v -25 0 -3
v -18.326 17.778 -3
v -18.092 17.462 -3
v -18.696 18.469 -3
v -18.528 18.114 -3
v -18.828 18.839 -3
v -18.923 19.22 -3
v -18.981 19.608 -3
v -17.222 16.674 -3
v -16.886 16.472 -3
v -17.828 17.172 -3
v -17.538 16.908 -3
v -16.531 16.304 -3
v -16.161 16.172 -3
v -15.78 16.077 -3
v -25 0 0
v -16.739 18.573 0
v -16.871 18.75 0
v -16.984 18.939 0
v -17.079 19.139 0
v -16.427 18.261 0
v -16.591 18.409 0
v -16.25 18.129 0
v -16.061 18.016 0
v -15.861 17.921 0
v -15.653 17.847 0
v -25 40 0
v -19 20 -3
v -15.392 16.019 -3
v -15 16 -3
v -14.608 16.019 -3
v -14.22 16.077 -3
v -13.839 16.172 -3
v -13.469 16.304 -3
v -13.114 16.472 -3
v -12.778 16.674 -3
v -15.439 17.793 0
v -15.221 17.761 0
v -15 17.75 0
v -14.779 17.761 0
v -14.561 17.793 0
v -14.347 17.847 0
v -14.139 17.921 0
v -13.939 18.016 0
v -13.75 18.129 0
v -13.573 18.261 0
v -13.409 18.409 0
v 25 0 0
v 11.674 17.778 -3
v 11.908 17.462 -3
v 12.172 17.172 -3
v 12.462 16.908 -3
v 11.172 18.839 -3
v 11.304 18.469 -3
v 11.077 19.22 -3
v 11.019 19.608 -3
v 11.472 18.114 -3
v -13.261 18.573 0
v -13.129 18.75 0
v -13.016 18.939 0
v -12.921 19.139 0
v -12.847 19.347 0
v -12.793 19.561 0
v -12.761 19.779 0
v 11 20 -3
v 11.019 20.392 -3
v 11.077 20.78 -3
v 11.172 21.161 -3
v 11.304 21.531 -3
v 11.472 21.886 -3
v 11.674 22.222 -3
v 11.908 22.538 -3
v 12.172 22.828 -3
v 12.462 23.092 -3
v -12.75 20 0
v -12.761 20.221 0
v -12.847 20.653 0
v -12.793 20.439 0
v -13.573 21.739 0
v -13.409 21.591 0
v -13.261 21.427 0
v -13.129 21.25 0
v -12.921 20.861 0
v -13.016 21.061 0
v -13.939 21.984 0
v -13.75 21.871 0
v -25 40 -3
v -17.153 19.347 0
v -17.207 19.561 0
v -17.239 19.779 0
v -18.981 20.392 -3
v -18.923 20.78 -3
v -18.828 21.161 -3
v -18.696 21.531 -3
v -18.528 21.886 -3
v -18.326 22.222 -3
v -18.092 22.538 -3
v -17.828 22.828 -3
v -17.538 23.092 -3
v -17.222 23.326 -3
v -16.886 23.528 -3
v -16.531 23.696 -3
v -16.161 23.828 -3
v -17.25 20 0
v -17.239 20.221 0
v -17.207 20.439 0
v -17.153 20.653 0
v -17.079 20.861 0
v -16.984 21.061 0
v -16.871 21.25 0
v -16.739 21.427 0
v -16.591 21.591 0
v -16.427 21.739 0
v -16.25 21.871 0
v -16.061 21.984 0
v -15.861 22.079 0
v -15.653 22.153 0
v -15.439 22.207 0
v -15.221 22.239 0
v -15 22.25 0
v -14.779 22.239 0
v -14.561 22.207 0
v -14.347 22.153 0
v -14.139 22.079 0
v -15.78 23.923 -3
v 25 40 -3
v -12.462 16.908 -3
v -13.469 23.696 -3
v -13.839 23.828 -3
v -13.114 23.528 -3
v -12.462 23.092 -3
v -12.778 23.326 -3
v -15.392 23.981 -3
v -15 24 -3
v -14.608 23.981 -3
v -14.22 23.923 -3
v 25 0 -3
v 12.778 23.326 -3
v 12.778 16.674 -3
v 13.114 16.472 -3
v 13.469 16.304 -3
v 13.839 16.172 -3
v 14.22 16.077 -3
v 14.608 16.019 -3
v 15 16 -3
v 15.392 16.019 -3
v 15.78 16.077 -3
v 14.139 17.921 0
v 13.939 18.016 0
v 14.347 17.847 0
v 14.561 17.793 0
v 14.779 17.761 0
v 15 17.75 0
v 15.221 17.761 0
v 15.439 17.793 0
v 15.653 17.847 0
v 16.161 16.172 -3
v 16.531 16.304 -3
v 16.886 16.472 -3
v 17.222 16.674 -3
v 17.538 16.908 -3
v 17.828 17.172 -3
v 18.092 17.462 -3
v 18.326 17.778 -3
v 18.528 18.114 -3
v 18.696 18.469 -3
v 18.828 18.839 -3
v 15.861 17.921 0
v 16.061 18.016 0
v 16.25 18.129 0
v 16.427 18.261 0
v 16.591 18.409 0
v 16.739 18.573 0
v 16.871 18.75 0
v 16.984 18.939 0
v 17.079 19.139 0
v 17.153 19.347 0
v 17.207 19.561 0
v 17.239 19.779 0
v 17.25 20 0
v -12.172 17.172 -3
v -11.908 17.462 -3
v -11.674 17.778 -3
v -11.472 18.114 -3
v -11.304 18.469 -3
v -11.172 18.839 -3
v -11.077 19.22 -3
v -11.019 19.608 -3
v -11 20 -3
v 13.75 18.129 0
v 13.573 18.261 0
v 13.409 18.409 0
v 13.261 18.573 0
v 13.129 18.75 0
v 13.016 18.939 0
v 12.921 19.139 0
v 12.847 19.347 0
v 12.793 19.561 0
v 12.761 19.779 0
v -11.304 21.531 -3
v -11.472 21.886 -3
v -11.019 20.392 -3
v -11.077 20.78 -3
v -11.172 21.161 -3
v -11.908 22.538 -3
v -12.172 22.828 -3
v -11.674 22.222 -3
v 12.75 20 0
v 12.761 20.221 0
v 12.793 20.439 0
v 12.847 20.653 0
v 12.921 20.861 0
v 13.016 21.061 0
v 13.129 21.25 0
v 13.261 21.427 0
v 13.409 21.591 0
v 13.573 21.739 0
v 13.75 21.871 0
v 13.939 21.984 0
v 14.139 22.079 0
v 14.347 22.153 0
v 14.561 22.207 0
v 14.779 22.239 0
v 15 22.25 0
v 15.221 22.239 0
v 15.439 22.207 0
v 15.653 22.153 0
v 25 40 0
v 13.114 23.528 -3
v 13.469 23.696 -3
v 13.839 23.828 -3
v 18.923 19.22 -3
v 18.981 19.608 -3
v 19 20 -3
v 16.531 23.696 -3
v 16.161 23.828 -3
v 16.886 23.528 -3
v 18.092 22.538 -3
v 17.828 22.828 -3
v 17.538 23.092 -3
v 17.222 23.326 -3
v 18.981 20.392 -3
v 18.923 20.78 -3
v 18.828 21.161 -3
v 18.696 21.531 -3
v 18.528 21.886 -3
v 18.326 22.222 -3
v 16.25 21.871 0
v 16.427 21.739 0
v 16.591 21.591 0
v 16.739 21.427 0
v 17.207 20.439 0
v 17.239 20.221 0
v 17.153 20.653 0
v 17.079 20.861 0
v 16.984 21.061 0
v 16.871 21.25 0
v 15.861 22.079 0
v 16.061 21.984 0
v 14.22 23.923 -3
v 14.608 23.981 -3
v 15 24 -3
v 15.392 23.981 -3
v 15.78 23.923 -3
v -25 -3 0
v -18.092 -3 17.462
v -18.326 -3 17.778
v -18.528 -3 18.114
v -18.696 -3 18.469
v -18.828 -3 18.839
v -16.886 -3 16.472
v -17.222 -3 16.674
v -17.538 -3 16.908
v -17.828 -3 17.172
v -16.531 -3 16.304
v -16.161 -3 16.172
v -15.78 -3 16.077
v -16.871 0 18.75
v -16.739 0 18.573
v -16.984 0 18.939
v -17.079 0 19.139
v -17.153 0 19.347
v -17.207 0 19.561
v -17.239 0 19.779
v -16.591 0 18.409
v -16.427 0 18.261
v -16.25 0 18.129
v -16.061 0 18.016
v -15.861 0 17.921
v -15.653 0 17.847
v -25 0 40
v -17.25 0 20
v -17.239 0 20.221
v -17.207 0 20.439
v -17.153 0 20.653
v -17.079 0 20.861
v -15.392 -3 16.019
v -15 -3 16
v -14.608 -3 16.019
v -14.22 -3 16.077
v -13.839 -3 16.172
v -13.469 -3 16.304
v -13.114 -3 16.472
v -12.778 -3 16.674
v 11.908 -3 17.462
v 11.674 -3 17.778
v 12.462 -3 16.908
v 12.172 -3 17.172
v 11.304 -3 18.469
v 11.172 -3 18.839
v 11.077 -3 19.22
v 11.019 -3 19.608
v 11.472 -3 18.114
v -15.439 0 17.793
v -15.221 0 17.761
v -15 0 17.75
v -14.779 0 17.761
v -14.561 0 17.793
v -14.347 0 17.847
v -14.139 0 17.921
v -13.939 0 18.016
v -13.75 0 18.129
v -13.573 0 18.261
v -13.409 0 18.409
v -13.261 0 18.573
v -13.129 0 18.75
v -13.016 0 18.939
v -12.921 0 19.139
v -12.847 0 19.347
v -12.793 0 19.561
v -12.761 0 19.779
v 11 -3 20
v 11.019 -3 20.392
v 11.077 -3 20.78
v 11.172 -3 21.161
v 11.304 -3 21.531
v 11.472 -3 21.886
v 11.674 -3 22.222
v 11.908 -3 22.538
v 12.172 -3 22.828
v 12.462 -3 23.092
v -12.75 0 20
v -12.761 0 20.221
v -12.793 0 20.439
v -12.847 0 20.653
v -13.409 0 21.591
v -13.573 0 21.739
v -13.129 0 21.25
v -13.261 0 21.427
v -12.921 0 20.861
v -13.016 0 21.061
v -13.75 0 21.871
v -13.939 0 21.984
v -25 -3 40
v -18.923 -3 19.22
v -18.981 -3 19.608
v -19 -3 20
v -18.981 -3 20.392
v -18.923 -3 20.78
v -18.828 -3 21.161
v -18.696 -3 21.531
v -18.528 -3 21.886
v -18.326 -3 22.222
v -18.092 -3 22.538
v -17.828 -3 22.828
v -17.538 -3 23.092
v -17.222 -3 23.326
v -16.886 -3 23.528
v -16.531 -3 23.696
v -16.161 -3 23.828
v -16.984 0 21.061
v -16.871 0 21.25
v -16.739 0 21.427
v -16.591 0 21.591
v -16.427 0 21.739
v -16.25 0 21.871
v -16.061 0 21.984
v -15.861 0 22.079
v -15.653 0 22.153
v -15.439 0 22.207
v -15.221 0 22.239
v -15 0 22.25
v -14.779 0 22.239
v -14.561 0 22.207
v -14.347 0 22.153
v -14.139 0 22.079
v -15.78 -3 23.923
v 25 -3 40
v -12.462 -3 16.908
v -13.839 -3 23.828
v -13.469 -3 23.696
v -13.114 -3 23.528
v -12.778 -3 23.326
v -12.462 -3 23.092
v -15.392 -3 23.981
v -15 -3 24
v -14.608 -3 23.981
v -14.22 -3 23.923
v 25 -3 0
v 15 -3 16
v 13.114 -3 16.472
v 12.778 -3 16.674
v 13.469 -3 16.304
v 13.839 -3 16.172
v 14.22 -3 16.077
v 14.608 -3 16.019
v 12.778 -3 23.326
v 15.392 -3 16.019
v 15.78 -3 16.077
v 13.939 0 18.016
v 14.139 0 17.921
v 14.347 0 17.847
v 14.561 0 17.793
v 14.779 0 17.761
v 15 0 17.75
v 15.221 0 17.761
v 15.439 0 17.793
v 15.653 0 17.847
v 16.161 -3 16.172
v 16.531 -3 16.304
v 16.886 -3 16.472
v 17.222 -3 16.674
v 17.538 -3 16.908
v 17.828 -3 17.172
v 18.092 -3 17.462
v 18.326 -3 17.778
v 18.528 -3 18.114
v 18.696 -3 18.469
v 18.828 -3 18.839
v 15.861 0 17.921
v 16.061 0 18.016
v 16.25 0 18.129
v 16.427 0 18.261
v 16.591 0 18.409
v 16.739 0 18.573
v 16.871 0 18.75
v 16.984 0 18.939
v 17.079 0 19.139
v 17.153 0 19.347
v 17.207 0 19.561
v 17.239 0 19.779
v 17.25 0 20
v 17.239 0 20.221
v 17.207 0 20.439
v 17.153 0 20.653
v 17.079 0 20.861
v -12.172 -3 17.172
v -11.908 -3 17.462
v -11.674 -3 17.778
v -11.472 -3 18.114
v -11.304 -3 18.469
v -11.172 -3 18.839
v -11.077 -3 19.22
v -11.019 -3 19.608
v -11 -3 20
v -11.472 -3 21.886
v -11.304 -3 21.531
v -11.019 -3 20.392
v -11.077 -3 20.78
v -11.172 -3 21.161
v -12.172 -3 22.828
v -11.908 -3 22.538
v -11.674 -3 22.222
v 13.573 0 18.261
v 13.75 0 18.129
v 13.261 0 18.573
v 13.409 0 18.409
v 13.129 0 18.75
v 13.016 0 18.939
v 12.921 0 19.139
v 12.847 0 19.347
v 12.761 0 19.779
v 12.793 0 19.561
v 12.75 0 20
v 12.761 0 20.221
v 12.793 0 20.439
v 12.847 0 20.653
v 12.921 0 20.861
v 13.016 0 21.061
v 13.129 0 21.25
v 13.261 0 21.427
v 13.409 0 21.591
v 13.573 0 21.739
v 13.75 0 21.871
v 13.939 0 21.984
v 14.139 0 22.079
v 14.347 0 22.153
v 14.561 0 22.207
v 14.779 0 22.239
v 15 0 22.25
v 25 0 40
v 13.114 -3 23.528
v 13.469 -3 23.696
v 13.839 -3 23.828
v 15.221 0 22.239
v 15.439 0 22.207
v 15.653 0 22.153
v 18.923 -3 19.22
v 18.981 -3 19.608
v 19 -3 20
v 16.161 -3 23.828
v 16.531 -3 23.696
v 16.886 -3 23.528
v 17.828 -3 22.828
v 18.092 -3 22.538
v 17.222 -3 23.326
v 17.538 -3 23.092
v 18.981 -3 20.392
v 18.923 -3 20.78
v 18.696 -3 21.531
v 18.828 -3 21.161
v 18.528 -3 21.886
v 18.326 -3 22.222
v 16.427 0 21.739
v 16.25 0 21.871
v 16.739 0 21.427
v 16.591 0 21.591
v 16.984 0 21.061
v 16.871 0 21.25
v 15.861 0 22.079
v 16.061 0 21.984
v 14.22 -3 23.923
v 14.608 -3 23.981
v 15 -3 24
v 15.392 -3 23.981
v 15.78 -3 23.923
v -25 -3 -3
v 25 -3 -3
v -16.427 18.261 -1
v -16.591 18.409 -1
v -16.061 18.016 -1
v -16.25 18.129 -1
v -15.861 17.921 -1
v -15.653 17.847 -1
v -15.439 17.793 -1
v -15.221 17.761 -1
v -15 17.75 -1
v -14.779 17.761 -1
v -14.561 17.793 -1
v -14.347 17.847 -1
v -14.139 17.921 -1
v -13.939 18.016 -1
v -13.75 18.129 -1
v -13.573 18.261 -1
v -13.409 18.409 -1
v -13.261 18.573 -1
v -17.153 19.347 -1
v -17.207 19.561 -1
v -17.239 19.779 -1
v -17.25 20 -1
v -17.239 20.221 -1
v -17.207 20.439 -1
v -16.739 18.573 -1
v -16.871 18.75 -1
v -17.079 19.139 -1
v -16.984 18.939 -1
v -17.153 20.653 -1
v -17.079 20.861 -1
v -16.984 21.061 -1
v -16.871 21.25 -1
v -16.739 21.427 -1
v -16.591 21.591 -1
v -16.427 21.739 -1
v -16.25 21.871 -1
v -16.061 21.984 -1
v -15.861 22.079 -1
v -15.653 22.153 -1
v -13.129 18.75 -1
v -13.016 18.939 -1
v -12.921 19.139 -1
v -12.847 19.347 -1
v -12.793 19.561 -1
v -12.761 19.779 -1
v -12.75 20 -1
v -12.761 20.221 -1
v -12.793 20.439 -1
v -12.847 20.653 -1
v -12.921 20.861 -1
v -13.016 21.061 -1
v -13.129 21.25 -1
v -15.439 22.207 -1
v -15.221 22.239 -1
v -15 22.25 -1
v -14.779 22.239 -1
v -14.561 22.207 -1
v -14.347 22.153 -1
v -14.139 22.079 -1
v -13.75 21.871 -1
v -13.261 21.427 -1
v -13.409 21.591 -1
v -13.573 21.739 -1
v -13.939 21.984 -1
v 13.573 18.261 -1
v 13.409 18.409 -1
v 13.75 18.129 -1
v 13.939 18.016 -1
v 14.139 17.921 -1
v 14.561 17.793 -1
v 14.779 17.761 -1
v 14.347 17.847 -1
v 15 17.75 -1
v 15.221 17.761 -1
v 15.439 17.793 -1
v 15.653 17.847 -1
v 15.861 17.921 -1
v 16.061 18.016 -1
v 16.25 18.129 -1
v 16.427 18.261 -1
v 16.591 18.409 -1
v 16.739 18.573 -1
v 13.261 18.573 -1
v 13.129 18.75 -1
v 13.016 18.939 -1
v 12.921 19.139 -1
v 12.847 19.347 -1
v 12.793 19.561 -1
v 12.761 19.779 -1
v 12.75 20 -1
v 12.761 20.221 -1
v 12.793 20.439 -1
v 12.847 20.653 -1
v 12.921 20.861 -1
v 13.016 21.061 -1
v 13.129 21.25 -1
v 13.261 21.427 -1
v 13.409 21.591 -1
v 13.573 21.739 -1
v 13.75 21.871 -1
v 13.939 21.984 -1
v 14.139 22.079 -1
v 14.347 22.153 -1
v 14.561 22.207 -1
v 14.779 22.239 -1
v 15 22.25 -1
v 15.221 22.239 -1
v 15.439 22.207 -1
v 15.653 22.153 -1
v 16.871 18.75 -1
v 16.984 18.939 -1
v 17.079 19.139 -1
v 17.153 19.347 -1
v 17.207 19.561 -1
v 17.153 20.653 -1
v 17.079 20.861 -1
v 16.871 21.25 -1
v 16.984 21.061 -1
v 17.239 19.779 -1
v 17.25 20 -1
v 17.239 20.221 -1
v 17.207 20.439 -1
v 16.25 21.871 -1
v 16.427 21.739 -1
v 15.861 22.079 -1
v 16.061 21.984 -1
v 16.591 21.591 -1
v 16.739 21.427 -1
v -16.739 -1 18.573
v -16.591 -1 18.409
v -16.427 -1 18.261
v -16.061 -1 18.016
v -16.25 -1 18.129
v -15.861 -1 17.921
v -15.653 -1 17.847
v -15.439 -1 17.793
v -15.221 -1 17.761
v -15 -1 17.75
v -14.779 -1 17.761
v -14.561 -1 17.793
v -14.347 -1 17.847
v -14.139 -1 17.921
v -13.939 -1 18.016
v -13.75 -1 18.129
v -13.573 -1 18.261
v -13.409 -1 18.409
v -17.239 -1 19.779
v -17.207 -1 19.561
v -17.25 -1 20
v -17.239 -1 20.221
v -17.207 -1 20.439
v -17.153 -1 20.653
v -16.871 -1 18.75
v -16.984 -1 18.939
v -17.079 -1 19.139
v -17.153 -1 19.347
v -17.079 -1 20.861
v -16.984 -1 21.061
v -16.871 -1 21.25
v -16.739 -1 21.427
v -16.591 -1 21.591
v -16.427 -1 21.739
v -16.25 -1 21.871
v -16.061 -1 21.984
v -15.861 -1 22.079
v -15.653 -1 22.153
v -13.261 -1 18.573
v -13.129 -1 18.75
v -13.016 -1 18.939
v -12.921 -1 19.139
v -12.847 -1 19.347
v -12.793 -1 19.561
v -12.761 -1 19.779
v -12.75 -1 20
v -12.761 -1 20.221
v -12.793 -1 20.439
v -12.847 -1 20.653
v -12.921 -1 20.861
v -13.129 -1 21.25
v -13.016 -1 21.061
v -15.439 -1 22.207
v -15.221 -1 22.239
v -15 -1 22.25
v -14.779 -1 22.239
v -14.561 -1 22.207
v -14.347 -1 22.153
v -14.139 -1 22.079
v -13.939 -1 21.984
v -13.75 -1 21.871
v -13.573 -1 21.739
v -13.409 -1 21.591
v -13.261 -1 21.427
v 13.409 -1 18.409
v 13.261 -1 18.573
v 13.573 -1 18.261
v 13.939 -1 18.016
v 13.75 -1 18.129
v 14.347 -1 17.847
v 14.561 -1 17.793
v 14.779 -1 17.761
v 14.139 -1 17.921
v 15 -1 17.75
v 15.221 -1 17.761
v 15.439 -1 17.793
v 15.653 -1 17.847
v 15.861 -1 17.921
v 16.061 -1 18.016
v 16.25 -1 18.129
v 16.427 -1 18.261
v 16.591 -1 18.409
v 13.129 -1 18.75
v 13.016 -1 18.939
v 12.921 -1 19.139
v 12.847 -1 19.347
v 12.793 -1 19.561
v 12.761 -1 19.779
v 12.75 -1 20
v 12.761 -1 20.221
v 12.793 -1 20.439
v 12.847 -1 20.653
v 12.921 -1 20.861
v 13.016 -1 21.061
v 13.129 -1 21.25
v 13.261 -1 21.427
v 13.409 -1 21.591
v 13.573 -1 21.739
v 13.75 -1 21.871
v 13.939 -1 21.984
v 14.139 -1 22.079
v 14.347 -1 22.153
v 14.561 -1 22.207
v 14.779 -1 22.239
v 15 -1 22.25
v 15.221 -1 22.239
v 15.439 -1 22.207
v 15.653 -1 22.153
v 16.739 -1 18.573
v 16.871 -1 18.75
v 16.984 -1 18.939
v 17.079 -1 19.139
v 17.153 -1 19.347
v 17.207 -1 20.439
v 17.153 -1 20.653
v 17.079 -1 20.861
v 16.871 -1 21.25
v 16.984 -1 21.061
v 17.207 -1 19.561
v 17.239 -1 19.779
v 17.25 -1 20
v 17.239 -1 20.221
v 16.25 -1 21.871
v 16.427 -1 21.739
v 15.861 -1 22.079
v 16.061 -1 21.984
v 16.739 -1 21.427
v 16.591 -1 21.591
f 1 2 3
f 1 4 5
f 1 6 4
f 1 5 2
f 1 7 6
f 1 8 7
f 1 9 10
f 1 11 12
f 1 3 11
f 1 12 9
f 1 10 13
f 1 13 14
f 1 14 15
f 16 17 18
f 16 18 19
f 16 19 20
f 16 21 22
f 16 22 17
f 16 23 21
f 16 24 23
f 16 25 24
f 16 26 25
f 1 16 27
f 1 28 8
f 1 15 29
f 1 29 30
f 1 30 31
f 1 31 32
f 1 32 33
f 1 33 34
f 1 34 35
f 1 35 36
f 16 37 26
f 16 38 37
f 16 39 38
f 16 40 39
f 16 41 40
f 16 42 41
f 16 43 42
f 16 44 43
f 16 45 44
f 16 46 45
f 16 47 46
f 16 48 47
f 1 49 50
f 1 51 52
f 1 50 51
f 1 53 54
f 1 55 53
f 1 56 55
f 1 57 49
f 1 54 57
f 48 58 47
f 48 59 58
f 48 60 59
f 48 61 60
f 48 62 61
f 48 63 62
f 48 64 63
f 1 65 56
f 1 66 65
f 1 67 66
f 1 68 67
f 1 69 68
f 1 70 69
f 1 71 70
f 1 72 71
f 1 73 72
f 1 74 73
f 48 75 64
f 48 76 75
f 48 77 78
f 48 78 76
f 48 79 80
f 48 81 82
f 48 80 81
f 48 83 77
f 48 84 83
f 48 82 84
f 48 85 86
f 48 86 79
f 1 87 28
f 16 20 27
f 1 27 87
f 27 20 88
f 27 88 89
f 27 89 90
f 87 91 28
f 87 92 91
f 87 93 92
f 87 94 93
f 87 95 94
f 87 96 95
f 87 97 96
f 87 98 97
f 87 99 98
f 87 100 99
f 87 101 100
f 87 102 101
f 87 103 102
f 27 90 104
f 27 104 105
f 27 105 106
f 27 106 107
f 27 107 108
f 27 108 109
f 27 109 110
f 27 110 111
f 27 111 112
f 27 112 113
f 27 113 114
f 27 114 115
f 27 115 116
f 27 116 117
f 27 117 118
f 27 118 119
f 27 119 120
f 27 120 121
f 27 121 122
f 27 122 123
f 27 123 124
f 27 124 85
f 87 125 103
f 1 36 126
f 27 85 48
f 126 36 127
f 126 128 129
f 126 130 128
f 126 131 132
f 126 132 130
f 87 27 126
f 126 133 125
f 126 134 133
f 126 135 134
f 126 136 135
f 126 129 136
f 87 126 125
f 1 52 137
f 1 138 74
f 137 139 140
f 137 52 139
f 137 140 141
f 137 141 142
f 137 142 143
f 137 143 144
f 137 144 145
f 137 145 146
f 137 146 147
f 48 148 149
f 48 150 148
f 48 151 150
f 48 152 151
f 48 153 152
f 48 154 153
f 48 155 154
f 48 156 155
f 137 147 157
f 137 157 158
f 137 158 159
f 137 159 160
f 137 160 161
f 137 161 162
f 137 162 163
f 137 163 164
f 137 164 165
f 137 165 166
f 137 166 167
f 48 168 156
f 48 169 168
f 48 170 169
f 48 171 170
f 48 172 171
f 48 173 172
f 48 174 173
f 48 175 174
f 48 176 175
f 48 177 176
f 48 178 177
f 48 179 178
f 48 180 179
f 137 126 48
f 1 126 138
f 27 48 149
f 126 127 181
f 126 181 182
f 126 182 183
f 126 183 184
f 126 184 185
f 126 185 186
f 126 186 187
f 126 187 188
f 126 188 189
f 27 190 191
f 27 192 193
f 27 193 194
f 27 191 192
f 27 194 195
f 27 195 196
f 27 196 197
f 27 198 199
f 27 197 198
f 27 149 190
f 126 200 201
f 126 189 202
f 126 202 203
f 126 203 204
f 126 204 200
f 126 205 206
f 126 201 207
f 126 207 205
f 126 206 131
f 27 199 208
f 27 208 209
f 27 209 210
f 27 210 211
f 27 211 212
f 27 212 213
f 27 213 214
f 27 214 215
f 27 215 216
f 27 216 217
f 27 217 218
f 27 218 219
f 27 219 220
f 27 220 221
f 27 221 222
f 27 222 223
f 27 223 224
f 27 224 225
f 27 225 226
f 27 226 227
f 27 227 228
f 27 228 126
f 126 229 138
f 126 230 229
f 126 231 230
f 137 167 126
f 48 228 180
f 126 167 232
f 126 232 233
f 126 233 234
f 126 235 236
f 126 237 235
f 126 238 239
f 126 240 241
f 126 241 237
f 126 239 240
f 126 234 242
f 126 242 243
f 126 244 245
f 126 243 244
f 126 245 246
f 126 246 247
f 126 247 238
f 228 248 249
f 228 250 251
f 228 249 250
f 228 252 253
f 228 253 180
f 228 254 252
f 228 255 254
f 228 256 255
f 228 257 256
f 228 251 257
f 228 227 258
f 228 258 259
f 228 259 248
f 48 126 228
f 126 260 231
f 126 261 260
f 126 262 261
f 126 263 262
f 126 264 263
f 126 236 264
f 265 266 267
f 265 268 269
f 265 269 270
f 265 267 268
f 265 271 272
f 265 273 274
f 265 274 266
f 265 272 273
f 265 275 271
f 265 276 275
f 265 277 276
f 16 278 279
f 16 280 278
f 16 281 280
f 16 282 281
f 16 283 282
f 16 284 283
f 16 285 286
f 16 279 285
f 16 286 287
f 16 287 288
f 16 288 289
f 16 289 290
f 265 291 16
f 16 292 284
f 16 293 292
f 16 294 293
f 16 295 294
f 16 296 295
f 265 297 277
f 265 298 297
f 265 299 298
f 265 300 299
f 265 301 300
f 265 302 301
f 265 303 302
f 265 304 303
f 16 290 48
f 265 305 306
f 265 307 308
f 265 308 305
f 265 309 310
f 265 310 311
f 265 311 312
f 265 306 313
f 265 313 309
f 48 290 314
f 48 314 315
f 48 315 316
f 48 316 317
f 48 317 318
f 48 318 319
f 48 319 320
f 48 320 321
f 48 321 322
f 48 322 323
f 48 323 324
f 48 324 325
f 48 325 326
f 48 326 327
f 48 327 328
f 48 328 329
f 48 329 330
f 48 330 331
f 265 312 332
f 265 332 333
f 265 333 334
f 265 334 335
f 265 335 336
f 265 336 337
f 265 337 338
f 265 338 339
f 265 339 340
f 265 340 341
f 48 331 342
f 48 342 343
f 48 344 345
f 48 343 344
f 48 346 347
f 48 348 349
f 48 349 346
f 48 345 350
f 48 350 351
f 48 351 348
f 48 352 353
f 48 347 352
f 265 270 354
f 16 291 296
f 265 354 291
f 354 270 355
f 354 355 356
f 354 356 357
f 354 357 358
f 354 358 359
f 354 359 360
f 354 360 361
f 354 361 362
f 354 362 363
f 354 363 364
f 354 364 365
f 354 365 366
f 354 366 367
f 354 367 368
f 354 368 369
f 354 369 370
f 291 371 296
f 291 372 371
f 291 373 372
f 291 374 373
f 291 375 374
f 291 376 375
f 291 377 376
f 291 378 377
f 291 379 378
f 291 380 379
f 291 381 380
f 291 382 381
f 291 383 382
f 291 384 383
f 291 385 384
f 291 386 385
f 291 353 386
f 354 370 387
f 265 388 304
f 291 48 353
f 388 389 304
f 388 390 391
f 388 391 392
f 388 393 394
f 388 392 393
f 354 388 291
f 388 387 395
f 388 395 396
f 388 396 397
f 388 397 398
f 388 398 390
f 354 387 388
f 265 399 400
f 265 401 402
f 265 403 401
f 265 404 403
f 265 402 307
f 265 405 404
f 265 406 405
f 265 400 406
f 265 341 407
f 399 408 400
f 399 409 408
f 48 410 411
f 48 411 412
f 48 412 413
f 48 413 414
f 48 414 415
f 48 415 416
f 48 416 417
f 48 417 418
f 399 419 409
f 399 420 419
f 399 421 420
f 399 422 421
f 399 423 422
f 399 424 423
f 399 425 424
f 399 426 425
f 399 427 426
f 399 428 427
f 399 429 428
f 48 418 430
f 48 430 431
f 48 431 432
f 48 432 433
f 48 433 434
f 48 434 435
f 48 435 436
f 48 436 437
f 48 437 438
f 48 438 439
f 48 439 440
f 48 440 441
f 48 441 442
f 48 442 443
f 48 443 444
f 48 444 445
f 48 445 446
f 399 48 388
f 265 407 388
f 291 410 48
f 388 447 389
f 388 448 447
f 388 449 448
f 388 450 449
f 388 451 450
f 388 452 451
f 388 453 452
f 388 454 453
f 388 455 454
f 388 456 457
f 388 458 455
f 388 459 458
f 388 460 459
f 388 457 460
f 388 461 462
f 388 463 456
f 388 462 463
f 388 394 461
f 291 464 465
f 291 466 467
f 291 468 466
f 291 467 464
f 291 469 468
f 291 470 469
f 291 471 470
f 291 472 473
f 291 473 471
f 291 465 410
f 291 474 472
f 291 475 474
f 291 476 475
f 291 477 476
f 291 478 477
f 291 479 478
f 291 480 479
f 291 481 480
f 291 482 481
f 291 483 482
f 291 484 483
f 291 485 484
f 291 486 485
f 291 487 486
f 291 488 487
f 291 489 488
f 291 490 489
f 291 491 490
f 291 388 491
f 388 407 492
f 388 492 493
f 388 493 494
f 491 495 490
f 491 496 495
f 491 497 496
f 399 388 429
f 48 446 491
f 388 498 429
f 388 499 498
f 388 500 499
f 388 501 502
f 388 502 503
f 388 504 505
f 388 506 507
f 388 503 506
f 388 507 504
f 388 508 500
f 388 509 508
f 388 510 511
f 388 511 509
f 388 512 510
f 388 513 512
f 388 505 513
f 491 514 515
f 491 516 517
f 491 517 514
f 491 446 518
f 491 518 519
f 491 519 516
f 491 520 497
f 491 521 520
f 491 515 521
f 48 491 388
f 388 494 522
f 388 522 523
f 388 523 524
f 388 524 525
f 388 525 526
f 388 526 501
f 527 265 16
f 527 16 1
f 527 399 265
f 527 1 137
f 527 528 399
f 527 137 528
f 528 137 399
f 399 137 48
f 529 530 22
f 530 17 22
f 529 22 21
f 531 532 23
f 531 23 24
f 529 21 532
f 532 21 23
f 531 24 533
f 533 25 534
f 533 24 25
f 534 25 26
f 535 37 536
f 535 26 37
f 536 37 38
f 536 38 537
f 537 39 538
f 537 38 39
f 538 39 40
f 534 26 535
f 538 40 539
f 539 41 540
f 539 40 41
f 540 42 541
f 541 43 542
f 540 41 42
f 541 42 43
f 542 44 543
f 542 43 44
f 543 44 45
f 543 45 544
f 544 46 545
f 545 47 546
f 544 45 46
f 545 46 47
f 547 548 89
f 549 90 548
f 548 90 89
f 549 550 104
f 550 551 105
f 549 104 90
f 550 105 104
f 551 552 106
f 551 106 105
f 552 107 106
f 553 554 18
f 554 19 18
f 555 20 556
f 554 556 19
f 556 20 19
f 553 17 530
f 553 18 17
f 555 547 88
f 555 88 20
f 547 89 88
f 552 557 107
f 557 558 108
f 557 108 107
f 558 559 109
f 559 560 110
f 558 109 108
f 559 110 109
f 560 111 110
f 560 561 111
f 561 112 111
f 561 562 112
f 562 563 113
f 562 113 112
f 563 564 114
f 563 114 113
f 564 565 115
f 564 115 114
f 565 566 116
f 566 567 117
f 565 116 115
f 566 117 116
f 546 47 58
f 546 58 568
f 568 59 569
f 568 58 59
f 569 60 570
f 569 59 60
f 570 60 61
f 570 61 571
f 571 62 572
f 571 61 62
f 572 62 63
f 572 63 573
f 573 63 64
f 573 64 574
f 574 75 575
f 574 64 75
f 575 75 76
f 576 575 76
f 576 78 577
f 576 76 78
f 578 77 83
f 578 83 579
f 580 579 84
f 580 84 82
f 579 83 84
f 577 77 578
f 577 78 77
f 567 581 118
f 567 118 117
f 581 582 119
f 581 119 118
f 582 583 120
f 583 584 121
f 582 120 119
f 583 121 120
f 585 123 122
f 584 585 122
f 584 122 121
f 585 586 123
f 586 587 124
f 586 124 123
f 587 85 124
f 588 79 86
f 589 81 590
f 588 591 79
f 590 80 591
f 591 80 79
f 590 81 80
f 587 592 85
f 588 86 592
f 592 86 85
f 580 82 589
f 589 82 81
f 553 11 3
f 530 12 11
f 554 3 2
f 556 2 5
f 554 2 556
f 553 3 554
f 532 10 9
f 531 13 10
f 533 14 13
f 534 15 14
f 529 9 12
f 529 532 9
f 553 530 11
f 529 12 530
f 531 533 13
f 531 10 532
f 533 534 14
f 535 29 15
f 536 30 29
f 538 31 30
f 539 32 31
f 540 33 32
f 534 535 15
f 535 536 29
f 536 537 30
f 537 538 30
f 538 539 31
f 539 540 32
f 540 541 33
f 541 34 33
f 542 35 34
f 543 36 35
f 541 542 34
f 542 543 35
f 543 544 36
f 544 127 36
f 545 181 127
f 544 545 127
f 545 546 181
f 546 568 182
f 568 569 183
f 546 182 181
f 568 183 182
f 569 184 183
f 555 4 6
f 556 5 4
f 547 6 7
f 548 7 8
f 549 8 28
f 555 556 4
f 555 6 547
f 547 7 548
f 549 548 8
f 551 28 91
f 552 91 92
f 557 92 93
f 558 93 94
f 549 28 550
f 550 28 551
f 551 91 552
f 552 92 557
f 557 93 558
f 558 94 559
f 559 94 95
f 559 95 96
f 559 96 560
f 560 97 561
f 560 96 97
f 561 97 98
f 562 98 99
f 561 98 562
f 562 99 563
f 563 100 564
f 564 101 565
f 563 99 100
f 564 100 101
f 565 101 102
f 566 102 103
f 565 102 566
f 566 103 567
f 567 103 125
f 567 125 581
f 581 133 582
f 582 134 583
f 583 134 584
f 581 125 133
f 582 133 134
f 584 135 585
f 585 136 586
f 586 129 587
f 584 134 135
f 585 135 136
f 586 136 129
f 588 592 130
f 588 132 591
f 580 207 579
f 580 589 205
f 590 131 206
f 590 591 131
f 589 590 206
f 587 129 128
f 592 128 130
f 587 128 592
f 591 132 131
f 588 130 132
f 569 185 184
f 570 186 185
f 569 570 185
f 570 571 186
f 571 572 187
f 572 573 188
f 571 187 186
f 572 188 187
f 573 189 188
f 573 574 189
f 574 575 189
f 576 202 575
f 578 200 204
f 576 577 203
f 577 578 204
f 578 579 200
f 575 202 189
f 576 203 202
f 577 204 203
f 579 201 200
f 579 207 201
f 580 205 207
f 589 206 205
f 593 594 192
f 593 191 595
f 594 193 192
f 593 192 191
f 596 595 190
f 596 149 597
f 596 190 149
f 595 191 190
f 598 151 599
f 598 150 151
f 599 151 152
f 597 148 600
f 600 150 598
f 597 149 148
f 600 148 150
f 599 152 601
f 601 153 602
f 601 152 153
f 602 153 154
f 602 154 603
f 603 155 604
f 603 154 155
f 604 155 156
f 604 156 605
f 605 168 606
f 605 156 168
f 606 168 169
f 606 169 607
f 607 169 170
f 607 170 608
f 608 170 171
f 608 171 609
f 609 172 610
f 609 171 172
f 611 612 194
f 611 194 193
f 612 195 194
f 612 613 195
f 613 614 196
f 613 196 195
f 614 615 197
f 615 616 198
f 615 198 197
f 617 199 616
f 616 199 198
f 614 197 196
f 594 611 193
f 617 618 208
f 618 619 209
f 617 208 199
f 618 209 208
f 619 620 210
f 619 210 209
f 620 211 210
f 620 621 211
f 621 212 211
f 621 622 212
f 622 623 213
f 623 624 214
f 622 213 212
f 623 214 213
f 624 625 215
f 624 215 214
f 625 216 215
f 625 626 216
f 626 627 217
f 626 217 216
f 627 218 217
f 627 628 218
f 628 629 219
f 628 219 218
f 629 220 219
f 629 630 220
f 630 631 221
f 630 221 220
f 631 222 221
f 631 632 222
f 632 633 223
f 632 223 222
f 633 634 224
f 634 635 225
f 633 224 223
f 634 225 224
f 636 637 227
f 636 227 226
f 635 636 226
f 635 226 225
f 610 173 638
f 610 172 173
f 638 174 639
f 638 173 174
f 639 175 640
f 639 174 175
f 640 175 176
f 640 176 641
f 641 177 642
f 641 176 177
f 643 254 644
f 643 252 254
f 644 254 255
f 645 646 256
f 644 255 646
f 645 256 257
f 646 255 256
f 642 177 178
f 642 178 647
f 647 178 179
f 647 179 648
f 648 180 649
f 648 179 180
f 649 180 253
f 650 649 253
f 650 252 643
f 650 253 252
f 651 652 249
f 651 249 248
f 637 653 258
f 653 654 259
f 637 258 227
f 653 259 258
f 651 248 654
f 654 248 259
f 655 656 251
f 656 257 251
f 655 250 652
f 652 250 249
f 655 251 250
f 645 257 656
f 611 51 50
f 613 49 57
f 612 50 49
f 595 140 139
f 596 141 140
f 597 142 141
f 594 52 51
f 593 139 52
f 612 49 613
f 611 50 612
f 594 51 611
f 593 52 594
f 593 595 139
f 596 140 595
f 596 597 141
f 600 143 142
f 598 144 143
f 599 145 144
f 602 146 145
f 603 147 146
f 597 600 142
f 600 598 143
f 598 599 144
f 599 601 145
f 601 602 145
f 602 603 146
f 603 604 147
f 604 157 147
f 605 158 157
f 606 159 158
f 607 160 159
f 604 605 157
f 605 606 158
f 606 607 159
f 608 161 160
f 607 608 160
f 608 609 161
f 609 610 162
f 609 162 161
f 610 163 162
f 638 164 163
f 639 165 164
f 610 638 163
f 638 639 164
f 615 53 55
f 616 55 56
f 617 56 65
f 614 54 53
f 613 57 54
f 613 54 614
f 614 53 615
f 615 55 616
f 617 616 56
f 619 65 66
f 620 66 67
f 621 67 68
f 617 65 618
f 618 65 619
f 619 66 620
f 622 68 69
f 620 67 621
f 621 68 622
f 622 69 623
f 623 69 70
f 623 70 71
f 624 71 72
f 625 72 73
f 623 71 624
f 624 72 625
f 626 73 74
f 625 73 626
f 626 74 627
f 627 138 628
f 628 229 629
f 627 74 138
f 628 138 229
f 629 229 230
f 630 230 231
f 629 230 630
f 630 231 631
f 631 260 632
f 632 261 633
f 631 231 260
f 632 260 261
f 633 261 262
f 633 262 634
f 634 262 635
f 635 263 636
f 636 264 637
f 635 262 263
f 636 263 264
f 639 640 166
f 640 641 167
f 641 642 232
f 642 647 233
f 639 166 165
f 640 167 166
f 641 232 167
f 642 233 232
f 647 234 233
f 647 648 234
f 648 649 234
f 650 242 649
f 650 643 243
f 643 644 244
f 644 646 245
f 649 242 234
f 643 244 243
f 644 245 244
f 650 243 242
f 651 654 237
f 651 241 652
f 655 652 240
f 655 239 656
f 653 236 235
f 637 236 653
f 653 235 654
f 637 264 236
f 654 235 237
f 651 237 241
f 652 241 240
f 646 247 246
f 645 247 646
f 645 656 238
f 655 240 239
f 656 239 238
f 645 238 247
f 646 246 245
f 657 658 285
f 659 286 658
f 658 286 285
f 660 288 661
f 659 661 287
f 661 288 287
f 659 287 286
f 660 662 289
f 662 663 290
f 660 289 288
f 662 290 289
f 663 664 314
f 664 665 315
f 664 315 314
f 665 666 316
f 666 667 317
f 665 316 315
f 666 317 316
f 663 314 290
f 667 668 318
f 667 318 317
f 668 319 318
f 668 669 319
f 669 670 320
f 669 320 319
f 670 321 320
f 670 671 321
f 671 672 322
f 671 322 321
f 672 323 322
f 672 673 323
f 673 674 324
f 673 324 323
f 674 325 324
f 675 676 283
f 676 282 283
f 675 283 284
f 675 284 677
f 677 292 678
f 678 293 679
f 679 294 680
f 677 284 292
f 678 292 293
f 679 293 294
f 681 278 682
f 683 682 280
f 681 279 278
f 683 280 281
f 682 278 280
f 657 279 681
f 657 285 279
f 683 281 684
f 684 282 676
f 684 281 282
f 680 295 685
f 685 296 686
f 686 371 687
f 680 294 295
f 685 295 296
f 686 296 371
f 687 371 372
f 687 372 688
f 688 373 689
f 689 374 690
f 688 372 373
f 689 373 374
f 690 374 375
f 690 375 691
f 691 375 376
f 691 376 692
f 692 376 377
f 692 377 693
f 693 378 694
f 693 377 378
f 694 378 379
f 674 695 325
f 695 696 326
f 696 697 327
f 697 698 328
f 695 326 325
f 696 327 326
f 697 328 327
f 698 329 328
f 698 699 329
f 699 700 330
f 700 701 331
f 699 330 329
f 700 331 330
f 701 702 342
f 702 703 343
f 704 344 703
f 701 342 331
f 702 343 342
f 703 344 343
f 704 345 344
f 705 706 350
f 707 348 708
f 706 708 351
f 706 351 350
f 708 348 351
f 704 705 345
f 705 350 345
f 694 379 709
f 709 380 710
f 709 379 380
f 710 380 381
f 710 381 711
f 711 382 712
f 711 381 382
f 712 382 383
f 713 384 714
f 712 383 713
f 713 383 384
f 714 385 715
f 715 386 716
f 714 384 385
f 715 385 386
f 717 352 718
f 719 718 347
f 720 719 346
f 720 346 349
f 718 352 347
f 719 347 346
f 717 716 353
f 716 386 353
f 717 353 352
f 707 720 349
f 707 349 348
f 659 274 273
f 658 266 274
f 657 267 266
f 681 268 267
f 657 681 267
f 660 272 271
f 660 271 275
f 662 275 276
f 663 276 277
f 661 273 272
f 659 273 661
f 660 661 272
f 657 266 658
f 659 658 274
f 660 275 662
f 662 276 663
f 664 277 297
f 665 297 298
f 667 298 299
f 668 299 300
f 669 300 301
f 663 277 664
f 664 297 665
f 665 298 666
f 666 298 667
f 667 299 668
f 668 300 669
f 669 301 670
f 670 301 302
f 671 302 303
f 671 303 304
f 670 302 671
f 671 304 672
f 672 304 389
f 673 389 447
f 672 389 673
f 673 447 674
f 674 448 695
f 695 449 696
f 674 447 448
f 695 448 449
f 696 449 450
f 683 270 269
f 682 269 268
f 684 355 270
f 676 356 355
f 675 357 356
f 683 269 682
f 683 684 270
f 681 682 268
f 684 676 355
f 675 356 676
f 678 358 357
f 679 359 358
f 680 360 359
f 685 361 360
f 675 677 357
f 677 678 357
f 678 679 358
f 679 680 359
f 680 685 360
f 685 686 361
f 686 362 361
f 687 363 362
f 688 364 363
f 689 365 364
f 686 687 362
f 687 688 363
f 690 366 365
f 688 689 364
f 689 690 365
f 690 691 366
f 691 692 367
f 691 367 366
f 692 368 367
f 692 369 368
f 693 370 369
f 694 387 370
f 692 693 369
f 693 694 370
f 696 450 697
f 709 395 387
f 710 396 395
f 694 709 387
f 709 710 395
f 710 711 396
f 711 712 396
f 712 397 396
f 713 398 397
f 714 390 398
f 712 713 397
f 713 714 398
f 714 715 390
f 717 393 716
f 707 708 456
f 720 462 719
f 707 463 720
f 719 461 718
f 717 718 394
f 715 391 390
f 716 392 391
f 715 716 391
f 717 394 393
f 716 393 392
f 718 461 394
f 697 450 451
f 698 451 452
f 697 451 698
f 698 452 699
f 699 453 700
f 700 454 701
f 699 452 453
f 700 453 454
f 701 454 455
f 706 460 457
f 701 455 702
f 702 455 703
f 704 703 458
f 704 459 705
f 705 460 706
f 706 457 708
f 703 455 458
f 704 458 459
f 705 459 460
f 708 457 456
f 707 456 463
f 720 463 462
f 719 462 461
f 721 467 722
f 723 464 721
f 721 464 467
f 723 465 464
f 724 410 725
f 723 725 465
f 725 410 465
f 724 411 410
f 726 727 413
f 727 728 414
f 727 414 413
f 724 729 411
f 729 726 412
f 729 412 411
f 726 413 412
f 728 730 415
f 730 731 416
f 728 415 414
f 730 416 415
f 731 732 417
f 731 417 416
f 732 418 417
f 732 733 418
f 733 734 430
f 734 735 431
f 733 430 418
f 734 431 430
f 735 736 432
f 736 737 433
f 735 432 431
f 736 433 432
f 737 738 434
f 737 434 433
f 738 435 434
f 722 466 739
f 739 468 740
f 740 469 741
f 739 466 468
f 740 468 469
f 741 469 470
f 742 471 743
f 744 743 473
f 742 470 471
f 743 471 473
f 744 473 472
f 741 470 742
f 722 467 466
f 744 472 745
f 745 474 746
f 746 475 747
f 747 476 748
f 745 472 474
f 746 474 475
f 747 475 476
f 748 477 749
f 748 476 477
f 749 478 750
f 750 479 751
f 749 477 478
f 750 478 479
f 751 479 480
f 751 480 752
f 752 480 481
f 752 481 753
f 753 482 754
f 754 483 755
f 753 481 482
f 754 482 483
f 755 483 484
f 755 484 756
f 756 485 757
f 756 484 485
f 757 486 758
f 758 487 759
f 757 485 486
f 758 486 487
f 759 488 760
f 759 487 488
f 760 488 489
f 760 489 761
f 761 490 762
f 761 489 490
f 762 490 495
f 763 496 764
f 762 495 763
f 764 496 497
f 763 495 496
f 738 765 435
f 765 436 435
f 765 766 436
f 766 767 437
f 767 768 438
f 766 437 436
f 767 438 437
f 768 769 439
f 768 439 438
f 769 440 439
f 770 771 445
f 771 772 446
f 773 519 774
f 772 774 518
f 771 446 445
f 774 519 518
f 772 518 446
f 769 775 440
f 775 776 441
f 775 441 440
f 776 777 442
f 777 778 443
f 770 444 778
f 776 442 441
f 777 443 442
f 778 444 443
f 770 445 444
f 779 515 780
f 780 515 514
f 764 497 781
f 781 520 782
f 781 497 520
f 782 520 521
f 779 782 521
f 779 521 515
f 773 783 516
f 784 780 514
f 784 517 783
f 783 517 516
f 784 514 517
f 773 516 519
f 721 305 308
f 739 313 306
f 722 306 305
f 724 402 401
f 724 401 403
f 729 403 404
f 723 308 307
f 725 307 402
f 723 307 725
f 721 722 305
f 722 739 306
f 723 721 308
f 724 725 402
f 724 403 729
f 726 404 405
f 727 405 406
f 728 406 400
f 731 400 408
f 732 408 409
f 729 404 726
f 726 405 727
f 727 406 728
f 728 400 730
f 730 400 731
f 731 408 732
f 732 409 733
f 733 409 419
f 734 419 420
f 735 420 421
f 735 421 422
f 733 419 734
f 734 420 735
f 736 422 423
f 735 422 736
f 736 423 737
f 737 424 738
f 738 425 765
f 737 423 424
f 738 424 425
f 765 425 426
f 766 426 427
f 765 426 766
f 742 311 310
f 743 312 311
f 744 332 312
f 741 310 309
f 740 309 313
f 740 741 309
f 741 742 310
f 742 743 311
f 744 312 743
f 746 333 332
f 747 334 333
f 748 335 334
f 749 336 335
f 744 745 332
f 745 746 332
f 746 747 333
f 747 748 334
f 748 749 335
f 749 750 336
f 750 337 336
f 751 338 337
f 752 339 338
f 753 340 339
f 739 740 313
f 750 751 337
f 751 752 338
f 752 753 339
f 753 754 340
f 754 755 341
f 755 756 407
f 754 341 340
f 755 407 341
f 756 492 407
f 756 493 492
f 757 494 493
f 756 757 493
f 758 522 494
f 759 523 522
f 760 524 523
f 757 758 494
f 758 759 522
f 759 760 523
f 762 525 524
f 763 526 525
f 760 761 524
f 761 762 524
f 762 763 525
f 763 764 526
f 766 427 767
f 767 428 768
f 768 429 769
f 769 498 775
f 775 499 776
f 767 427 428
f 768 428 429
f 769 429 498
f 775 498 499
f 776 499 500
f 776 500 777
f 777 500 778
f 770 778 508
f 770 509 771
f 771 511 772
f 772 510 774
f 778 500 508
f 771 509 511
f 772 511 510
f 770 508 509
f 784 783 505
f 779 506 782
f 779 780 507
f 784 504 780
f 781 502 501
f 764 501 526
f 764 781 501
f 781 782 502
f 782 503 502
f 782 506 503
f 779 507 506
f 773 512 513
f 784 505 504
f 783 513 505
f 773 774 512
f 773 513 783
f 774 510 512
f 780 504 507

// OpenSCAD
$fn = 64;

W = 50;
D = 40;
H = 40;
T = 3;

hole_d = 4.5;
csk_d = 8;
csk_depth = 2;

hole_r = hole_d / 2;
csk_r = csk_d / 2;

hole_x = W / 2 - 10;
horizontal_y = D / 2;
vertical_z = H / 2;

module horizontal_countersink(x, y) {
    translate([x, y, -T - 0.01])
        cylinder(h = T + 0.02, r = hole_r);

    translate([x, y, -T])
        cylinder(h = csk_depth, r1 = csk_r, r2 = hole_r);
}

module vertical_countersink(x, z) {
    translate([x, -T - 0.01, z])
        rotate([-90, 0, 0])
            cylinder(h = T + 0.02, r = hole_r);

    translate([x, -T, z])
        rotate([-90, 0, 0])
            cylinder(h = csk_depth, r1 = csk_r, r2 = hole_r);
}

difference() {
    union() {
        translate([-W / 2, 0, -T])
            cube([W, D, T]);

        translate([-W / 2, -T, 0])
            cube([W, T, H]);

        translate([-W / 2, -T, -T])
            cube([W, T, T]);
    }

    union() {
        horizontal_countersink(-hole_x, horizontal_y);
        horizontal_countersink( hole_x, horizontal_y);

        vertical_countersink(-hole_x, vertical_z);
        vertical_countersink( hole_x, vertical_z);
    }
}
